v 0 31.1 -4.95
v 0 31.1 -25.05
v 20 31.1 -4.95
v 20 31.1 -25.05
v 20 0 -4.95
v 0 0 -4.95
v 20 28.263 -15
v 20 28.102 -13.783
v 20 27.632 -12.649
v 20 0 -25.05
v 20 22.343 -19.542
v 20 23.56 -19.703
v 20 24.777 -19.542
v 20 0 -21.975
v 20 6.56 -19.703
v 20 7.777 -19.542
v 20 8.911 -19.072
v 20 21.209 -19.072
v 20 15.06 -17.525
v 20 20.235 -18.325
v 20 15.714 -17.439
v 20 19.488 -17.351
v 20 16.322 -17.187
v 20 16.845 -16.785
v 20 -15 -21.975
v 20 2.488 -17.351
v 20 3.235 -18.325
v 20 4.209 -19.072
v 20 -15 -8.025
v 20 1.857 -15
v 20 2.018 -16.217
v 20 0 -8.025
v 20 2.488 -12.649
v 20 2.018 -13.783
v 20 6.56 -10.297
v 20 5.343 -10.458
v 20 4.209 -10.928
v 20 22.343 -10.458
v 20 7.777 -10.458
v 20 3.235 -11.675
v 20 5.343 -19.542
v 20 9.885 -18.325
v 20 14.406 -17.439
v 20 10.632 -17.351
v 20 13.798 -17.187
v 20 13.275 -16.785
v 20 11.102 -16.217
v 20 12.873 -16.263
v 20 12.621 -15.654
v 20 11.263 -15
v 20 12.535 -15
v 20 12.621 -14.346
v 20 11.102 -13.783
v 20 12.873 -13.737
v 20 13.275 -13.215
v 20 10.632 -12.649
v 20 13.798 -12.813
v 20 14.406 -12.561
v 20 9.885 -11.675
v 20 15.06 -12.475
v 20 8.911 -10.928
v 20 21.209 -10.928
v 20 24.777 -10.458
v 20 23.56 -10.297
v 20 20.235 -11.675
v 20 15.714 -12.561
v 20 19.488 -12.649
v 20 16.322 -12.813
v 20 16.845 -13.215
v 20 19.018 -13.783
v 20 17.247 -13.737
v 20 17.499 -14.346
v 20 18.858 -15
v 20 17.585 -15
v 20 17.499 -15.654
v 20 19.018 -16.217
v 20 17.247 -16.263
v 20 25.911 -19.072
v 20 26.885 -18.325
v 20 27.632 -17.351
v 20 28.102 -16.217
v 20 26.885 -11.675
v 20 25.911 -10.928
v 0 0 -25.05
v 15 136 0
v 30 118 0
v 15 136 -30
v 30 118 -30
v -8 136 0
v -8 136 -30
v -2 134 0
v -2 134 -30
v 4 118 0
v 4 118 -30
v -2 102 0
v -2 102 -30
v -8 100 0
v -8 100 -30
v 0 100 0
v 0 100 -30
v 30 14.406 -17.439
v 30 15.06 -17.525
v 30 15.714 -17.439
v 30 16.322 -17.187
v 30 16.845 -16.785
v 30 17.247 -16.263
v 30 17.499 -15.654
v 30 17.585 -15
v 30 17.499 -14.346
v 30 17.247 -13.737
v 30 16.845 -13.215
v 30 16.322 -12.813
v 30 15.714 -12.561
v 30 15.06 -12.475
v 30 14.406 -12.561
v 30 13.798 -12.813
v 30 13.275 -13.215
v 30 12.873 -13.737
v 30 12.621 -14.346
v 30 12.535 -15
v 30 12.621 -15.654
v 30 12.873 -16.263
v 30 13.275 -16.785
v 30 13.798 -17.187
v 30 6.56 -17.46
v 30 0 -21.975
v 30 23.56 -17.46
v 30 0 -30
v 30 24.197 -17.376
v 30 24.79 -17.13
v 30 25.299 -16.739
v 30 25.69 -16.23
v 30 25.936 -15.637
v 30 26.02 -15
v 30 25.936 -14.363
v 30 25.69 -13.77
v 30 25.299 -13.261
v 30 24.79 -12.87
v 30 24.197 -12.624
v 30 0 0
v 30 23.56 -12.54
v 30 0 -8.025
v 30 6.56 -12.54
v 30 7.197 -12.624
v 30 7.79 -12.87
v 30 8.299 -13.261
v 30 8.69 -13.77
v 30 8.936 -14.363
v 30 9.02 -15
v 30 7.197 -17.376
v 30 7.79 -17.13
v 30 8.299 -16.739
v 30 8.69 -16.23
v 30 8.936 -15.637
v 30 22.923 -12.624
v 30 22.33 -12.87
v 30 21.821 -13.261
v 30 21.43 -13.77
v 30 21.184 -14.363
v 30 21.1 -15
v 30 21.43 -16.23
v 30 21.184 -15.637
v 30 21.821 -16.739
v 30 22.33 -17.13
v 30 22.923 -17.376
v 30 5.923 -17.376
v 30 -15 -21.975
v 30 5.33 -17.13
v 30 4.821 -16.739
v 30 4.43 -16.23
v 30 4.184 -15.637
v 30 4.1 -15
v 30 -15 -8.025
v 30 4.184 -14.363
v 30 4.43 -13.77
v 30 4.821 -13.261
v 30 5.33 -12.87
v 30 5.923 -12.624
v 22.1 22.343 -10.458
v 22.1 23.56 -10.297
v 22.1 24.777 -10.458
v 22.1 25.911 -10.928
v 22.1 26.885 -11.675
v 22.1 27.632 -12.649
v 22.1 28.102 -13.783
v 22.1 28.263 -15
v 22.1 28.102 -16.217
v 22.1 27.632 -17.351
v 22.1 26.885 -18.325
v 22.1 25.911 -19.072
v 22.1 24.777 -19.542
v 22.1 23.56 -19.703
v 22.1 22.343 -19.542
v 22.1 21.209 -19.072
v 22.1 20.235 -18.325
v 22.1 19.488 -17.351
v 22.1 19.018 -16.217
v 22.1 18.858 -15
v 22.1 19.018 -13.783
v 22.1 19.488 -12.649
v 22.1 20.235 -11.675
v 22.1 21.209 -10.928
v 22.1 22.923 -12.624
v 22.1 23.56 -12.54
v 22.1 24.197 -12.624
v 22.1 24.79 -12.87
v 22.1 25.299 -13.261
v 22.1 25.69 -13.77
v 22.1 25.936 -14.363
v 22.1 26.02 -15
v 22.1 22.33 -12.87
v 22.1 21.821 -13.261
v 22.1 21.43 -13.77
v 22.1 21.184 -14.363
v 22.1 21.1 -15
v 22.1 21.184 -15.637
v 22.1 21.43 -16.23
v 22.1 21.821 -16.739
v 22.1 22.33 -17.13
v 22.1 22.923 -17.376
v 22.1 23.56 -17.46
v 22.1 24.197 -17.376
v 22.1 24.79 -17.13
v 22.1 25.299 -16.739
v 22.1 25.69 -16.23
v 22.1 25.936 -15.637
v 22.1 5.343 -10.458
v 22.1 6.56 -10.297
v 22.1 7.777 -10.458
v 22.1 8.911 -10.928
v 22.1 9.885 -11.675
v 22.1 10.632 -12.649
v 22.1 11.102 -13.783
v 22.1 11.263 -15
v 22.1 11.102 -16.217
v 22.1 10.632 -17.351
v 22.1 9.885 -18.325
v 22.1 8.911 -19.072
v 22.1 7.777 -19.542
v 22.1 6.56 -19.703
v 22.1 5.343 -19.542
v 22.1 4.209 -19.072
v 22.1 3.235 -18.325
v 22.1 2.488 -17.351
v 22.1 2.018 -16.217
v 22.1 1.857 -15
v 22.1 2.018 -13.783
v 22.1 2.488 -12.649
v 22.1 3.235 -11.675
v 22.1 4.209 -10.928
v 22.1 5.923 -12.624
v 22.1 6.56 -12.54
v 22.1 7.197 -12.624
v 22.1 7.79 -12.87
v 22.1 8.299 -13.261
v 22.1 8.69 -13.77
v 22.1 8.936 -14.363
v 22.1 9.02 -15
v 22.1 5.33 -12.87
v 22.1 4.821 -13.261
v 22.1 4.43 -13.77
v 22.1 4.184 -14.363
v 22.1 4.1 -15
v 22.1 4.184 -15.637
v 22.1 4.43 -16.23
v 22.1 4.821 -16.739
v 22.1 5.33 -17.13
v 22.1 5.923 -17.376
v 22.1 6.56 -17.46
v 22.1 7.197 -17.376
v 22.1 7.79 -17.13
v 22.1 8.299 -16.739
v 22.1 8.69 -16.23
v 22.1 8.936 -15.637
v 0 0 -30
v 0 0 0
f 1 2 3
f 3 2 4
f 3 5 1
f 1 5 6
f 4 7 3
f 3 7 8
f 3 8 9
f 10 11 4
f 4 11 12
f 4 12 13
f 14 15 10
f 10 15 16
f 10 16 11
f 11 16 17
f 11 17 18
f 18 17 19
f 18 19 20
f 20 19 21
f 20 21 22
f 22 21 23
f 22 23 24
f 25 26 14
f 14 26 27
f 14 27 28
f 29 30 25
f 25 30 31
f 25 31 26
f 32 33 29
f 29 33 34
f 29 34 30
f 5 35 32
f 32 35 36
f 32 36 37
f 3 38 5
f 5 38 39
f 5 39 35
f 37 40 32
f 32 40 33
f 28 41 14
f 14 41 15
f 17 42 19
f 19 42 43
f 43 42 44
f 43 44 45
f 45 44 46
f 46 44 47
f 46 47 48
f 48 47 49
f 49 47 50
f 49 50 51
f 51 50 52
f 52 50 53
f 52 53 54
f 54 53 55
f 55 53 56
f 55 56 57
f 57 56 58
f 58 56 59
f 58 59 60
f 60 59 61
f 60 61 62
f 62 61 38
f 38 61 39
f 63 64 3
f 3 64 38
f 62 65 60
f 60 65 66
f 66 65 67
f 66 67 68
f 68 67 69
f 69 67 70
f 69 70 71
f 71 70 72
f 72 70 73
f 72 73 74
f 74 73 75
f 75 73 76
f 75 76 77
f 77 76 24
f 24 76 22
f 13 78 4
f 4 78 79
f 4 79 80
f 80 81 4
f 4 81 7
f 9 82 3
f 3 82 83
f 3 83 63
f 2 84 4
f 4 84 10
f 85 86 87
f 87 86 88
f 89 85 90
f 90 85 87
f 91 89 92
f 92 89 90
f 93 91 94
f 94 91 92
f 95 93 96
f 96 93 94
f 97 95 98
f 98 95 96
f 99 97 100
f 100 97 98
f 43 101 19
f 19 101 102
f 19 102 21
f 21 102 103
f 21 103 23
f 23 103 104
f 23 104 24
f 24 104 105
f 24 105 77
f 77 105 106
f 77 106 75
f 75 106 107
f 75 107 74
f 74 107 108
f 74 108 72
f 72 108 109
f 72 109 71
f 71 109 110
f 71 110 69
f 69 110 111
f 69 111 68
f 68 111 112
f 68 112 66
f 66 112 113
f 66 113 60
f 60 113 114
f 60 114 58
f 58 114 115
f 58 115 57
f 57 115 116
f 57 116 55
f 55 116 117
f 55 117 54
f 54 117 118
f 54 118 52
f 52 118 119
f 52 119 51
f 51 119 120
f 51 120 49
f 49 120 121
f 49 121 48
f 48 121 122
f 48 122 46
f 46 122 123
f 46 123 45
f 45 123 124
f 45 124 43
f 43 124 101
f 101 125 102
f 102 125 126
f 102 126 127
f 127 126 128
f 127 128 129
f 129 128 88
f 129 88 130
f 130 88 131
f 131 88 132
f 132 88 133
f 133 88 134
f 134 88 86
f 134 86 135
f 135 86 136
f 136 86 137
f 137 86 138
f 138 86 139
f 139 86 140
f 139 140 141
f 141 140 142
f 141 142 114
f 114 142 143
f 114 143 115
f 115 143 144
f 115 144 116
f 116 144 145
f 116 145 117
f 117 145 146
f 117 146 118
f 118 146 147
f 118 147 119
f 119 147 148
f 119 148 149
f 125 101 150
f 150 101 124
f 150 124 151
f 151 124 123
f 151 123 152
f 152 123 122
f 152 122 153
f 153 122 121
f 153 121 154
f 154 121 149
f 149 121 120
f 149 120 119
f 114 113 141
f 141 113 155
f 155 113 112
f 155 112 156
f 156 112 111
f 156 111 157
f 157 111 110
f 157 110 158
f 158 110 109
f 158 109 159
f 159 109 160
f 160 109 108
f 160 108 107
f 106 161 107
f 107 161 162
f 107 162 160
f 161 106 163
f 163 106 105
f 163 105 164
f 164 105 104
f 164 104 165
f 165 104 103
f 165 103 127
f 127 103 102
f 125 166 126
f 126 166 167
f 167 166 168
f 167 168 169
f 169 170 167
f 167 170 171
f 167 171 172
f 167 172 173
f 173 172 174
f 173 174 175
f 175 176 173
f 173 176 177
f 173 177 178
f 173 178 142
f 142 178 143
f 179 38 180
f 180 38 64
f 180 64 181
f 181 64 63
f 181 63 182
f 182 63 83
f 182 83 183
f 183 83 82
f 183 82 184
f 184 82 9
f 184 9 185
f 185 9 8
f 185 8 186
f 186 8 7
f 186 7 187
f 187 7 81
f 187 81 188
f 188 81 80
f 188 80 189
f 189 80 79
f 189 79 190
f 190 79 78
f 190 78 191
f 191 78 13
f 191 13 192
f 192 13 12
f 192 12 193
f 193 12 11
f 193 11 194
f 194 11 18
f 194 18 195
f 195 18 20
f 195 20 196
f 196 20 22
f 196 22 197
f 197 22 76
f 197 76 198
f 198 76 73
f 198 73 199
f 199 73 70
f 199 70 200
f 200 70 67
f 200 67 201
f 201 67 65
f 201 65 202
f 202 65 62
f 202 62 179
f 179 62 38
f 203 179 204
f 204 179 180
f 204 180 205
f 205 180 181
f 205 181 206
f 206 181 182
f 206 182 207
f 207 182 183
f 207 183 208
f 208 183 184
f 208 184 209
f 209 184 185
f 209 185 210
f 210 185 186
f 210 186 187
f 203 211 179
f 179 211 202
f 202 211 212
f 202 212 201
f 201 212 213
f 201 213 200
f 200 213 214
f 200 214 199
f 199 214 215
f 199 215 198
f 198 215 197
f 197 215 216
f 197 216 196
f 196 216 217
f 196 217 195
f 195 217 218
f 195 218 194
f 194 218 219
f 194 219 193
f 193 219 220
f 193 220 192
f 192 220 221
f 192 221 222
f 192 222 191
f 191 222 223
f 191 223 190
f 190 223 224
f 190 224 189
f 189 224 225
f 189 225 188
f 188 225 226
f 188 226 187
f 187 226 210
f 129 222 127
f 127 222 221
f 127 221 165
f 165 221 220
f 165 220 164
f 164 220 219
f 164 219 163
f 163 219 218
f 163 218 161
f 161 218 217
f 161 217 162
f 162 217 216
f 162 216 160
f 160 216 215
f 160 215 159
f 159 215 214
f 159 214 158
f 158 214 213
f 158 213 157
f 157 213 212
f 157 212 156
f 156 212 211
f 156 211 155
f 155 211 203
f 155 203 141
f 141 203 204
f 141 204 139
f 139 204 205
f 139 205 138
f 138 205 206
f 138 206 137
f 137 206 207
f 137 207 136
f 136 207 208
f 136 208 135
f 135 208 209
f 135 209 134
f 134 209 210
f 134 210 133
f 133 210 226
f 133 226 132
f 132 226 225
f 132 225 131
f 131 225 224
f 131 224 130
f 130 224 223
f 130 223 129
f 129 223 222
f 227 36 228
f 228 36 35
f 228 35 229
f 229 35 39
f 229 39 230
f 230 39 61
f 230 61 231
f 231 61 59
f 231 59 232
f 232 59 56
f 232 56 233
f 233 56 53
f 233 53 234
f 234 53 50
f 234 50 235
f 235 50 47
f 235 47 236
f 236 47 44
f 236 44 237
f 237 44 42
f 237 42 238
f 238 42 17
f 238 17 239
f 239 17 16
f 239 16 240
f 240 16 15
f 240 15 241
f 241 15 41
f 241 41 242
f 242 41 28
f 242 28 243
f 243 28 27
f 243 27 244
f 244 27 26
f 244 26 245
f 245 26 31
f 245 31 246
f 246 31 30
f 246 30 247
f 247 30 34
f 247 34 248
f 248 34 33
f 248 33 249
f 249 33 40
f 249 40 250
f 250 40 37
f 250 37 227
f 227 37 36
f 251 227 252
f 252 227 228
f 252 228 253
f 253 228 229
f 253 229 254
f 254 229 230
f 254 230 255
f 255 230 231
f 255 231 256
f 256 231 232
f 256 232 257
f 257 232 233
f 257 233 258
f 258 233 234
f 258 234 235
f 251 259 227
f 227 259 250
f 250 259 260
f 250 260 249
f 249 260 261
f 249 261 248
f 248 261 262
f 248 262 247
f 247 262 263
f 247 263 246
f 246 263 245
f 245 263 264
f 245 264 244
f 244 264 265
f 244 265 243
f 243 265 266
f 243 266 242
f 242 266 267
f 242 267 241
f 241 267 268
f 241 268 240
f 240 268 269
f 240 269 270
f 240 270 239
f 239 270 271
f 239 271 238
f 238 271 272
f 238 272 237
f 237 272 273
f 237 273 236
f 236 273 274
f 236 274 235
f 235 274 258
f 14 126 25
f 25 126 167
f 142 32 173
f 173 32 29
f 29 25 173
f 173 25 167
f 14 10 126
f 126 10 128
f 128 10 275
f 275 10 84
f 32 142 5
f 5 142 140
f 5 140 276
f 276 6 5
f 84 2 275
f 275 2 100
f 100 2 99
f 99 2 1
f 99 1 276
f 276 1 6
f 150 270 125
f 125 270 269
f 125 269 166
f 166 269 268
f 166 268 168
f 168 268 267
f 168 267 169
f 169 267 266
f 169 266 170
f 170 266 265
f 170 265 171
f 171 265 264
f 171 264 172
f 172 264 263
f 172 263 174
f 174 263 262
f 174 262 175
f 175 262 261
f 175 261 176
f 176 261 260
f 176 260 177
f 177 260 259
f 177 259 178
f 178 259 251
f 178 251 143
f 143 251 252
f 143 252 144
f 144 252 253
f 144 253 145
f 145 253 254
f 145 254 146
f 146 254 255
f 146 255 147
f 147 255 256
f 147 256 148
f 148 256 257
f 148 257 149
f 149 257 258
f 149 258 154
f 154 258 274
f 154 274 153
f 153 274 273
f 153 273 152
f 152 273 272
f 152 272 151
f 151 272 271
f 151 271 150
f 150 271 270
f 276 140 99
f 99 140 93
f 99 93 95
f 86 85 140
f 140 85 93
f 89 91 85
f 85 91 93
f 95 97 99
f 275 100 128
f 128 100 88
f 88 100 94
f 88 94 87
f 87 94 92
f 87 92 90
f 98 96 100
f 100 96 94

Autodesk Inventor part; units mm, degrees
ref_plane "YZ Plane" through (0, 0, 0) normal (1, 0, 0) x (0, 1, 0)
ref_plane "XZ Plane" through (0, 0, 0) normal (0, 1, 0) x (-1, 0, 0)
ref_plane "XY Plane" through (0, 0, 0) normal (0, 0, 1) x (1, 0, 0)
sketch "Sketch1" plane through (0, 0, 0) normal (0, 0, 1) x (1, 0, 0)
  line L0 (0, 0) -> (25, 0)
  line L1 (25, 0) -> (25, 40)
  line L2 (25, 40) -> (0, 40)
  line L3 (0, 40) -> (0, 0)
  dimension "d1" = 25
  dimension "d2" = 40
  dimension "d3" = 25
extrude "Extrusion1" add sketch "Sketch1" against normal blind 30
sketch "Sketch2" plane through (25, 0, 0) normal (1, 0, 0) x (0, 0, -1)
  line L0 (0, 0) -> (30, 0) projected
  circle A0 centre (15, 6.56) radius 2.46
extrude "Extrusion2" cut sketch "Sketch2" against normal blind 30
sketch "Sketch3" plane through (0, 0, 0) normal (-1, 0, 0) x (0, 0, 1)
  line L0 (0, 0) -> (-30, 0) projected
  line L1 (-25.05, 0) -> (-4.95, 0)
  line L2 (-4.95, 0) -> (-4.95, 33.12)
  line L3 (-4.95, 33.12) -> (-25.05, 33.12)
  line L4 (-25.05, 33.12) -> (-25.05, 0)
  dimension "d11" = 20.1
extrude "Extrusion3" cut sketch "Sketch3" against normal blind 20
sketch "Sketch4" plane through (0, 0, 0) normal (0, -1, 0) x (1, 0, 0)
  line L0 (20, -4.95) -> (20, -25.05) projected
  line L1 (20, -15) -> (25, -15)
  line L2 (25, 0) -> (25, -30) projected
  line L3 (20, -8.025) -> (25, -8.025)
  line L4 (25, -8.025) -> (25, -21.975)
  line L5 (25, -21.975) -> (20, -21.975)
  line L6 (20, -21.975) -> (20, -8.025)
  line L7 (20, -8.025) -> (25, -21.975) construction
  line L8 (25, -8.025) -> (20, -21.975) construction
  line L9 (25, -12.54) -> (25, -17.46) projected
  point P0 (0, 0)
  point P1 (22.5, -15)
  dimension "d14" = 13.95
extrude "Extrusion4" add sketch "Sketch4" along normal blind 15
sketch "Sketch5" plane through (20, 0, 0) normal (-1, 0, 0) x (0, 0, 1)
  circle A0 centre (-15, 6.56) radius 2.46 projected
  circle A1 centre (-15, 6.56) radius 4.7025
  circle A2 centre (-15, 6.56) radius 2.46 projected
  circle A3 centre (-15, 6.56) radius 2.46
  point P0 (0, 0)
  dimension "d17" = 9.405
extrude "Extrusion5" cut sketch "Sketch5" against normal blind 2.1
sketch "Sketch6" plane through (25, 0, 0) normal (1, 0, 0) x (0, 0, -1)
  circle A0 centre (15, 6.56) radius 4.7025 projected
  line L0 (15, 6.56) -> (15, 23.56)
  circle A1 centre (15, 23.56) radius 2.46
  point P0 (0, 0)
  dimension "d20" = 17
  dimension "d21" = 4.92
extrude "Extrusion6" cut sketch "Sketch6" against normal blind 10 contours A1
sketch "Sketch7" plane through (20, 0, 0) normal (-1, 0, 0) x (0, 0, 1)
  circle A0 centre (-15, 23.56) radius 2.46 projected
  circle A1 centre (-15, 23.56) radius 4.7025
  point P0 (0, 0)
  dimension "d24" = 9.405
extrude "Extrusion7" cut sketch "Sketch7" against normal blind 2.1
sketch "Sketch9" plane through (25, 0, 0) normal (1, 0, 0) x (0, 0, -1)
  circle A0 centre (15, 6.56) radius 2.46 projected
  circle A1 centre (15, 6.56) radius 2.46
  circle A2 centre (15, 23.56) radius 2.46 projected
  circle A3 centre (15, 23.56) radius 2.46
  line L0 (30, 40) -> (30, 0) projected
  line L1 (30, 0) -> (30, 40)
  line L2 (30, 40) -> (0, 40)
  line L3 (0, 40) -> (0, 0)
  line L4 (0, 0) -> (8.025, 0) projected
  line L5 (21.975, 0) -> (21.975, -15)
  line L6 (21.975, -15) -> (8.025, -15)
  line L7 (8.025, -15) -> (8.025, 0)
  line L8 (0, 0) -> (8.025, 0)
  line L9 (21.975, 0) -> (30, 0)
extrude "Extrusion8" add sketch "Sketch9" along normal blind 5
sketch "Sketch10" plane through (0, 40, 0) normal (0, 1, 0) x (1, 0, 0)
  line L0 (0, 30) -> (30, 30) projected
  line L1 (30, 0) -> (0, 0) projected
  line L2 (0, 30) -> (30, 30)
  line L3 (30, 30) -> (30, 0)
  line L4 (30, 0) -> (0, 0)
  line L5 (0, 0) -> (0, 30)
extrude "Extrusion9" add sketch "Sketch10" along normal blind 30
sketch "Sketch12" plane through (30, 0, 0) normal (1, 0, 0) x (0, 0, -1)
  circle A0 centre (15, 6.56) radius 2.46 projected
  line L0 (15, 6.56) -> (15, 15.06)
  circle A1 centre (15, 15.06) radius 2.525
  point P0 (0, 0)
  dimension "d31" = 8.5
  dimension "d33" = 5.05
extrude "Extrusion10" cut sketch "Sketch12" against normal blind 30 contours A1
sketch "Sketch14" plane through (0, 0, 0) normal (0, 0, 1) x (1, 0, 0)
  line L0 (30, 70) -> (0, 70) projected
  line L1 (0, 100) -> (-8, 100)
  line L2 (30, 0) -> (30, 70) projected
  line L3 (30, 118) -> (30, 70)
  line L4 (30, 105) -> (30, 100)
  line L5 (-2, 134) -> (-8, 136)
  line L6 (-2, 134) -> (4, 118)
  line L7 (-2, 102) -> (-8, 100)
  line L8 (-2, 102) -> (4, 118)
  line L9 (0, 70) -> (30, 70) projected
  line L10 (0, 70) -> (0, 100)
  line L11 (15, 136) -> (30, 118)
  line L12 (-8, 136) -> (15, 136)
  point P0 (0, 0)
  dimension "d47" = 30
extrude "Extrusion12" add sketch "Sketch14" against normal blind 30
sketch "Sketch15" plane through (0, 0, -25.05) normal (-1, 0, 0) x (0, 0, 1)
  line L0 (0, 33.12) -> (20.1, 33.12) projected
  line L1 (20.1, 33.12) -> (20.1, 0) projected
  line L2 (0, 33.12) -> (20.1, 33.12)
  line L3 (20.1, 33.12) -> (20.1, 31.1)
  line L4 (20.1, 31.1) -> (0, 31.1)
  line L5 (0, 31.1) -> (0, 33.12)
  point P0 (25.05, 0)
  dimension "d57" = 2.02
extrude "Extrusion13" add sketch "Sketch15" against normal blind 20
properties part number "32mm_x_30mm"
